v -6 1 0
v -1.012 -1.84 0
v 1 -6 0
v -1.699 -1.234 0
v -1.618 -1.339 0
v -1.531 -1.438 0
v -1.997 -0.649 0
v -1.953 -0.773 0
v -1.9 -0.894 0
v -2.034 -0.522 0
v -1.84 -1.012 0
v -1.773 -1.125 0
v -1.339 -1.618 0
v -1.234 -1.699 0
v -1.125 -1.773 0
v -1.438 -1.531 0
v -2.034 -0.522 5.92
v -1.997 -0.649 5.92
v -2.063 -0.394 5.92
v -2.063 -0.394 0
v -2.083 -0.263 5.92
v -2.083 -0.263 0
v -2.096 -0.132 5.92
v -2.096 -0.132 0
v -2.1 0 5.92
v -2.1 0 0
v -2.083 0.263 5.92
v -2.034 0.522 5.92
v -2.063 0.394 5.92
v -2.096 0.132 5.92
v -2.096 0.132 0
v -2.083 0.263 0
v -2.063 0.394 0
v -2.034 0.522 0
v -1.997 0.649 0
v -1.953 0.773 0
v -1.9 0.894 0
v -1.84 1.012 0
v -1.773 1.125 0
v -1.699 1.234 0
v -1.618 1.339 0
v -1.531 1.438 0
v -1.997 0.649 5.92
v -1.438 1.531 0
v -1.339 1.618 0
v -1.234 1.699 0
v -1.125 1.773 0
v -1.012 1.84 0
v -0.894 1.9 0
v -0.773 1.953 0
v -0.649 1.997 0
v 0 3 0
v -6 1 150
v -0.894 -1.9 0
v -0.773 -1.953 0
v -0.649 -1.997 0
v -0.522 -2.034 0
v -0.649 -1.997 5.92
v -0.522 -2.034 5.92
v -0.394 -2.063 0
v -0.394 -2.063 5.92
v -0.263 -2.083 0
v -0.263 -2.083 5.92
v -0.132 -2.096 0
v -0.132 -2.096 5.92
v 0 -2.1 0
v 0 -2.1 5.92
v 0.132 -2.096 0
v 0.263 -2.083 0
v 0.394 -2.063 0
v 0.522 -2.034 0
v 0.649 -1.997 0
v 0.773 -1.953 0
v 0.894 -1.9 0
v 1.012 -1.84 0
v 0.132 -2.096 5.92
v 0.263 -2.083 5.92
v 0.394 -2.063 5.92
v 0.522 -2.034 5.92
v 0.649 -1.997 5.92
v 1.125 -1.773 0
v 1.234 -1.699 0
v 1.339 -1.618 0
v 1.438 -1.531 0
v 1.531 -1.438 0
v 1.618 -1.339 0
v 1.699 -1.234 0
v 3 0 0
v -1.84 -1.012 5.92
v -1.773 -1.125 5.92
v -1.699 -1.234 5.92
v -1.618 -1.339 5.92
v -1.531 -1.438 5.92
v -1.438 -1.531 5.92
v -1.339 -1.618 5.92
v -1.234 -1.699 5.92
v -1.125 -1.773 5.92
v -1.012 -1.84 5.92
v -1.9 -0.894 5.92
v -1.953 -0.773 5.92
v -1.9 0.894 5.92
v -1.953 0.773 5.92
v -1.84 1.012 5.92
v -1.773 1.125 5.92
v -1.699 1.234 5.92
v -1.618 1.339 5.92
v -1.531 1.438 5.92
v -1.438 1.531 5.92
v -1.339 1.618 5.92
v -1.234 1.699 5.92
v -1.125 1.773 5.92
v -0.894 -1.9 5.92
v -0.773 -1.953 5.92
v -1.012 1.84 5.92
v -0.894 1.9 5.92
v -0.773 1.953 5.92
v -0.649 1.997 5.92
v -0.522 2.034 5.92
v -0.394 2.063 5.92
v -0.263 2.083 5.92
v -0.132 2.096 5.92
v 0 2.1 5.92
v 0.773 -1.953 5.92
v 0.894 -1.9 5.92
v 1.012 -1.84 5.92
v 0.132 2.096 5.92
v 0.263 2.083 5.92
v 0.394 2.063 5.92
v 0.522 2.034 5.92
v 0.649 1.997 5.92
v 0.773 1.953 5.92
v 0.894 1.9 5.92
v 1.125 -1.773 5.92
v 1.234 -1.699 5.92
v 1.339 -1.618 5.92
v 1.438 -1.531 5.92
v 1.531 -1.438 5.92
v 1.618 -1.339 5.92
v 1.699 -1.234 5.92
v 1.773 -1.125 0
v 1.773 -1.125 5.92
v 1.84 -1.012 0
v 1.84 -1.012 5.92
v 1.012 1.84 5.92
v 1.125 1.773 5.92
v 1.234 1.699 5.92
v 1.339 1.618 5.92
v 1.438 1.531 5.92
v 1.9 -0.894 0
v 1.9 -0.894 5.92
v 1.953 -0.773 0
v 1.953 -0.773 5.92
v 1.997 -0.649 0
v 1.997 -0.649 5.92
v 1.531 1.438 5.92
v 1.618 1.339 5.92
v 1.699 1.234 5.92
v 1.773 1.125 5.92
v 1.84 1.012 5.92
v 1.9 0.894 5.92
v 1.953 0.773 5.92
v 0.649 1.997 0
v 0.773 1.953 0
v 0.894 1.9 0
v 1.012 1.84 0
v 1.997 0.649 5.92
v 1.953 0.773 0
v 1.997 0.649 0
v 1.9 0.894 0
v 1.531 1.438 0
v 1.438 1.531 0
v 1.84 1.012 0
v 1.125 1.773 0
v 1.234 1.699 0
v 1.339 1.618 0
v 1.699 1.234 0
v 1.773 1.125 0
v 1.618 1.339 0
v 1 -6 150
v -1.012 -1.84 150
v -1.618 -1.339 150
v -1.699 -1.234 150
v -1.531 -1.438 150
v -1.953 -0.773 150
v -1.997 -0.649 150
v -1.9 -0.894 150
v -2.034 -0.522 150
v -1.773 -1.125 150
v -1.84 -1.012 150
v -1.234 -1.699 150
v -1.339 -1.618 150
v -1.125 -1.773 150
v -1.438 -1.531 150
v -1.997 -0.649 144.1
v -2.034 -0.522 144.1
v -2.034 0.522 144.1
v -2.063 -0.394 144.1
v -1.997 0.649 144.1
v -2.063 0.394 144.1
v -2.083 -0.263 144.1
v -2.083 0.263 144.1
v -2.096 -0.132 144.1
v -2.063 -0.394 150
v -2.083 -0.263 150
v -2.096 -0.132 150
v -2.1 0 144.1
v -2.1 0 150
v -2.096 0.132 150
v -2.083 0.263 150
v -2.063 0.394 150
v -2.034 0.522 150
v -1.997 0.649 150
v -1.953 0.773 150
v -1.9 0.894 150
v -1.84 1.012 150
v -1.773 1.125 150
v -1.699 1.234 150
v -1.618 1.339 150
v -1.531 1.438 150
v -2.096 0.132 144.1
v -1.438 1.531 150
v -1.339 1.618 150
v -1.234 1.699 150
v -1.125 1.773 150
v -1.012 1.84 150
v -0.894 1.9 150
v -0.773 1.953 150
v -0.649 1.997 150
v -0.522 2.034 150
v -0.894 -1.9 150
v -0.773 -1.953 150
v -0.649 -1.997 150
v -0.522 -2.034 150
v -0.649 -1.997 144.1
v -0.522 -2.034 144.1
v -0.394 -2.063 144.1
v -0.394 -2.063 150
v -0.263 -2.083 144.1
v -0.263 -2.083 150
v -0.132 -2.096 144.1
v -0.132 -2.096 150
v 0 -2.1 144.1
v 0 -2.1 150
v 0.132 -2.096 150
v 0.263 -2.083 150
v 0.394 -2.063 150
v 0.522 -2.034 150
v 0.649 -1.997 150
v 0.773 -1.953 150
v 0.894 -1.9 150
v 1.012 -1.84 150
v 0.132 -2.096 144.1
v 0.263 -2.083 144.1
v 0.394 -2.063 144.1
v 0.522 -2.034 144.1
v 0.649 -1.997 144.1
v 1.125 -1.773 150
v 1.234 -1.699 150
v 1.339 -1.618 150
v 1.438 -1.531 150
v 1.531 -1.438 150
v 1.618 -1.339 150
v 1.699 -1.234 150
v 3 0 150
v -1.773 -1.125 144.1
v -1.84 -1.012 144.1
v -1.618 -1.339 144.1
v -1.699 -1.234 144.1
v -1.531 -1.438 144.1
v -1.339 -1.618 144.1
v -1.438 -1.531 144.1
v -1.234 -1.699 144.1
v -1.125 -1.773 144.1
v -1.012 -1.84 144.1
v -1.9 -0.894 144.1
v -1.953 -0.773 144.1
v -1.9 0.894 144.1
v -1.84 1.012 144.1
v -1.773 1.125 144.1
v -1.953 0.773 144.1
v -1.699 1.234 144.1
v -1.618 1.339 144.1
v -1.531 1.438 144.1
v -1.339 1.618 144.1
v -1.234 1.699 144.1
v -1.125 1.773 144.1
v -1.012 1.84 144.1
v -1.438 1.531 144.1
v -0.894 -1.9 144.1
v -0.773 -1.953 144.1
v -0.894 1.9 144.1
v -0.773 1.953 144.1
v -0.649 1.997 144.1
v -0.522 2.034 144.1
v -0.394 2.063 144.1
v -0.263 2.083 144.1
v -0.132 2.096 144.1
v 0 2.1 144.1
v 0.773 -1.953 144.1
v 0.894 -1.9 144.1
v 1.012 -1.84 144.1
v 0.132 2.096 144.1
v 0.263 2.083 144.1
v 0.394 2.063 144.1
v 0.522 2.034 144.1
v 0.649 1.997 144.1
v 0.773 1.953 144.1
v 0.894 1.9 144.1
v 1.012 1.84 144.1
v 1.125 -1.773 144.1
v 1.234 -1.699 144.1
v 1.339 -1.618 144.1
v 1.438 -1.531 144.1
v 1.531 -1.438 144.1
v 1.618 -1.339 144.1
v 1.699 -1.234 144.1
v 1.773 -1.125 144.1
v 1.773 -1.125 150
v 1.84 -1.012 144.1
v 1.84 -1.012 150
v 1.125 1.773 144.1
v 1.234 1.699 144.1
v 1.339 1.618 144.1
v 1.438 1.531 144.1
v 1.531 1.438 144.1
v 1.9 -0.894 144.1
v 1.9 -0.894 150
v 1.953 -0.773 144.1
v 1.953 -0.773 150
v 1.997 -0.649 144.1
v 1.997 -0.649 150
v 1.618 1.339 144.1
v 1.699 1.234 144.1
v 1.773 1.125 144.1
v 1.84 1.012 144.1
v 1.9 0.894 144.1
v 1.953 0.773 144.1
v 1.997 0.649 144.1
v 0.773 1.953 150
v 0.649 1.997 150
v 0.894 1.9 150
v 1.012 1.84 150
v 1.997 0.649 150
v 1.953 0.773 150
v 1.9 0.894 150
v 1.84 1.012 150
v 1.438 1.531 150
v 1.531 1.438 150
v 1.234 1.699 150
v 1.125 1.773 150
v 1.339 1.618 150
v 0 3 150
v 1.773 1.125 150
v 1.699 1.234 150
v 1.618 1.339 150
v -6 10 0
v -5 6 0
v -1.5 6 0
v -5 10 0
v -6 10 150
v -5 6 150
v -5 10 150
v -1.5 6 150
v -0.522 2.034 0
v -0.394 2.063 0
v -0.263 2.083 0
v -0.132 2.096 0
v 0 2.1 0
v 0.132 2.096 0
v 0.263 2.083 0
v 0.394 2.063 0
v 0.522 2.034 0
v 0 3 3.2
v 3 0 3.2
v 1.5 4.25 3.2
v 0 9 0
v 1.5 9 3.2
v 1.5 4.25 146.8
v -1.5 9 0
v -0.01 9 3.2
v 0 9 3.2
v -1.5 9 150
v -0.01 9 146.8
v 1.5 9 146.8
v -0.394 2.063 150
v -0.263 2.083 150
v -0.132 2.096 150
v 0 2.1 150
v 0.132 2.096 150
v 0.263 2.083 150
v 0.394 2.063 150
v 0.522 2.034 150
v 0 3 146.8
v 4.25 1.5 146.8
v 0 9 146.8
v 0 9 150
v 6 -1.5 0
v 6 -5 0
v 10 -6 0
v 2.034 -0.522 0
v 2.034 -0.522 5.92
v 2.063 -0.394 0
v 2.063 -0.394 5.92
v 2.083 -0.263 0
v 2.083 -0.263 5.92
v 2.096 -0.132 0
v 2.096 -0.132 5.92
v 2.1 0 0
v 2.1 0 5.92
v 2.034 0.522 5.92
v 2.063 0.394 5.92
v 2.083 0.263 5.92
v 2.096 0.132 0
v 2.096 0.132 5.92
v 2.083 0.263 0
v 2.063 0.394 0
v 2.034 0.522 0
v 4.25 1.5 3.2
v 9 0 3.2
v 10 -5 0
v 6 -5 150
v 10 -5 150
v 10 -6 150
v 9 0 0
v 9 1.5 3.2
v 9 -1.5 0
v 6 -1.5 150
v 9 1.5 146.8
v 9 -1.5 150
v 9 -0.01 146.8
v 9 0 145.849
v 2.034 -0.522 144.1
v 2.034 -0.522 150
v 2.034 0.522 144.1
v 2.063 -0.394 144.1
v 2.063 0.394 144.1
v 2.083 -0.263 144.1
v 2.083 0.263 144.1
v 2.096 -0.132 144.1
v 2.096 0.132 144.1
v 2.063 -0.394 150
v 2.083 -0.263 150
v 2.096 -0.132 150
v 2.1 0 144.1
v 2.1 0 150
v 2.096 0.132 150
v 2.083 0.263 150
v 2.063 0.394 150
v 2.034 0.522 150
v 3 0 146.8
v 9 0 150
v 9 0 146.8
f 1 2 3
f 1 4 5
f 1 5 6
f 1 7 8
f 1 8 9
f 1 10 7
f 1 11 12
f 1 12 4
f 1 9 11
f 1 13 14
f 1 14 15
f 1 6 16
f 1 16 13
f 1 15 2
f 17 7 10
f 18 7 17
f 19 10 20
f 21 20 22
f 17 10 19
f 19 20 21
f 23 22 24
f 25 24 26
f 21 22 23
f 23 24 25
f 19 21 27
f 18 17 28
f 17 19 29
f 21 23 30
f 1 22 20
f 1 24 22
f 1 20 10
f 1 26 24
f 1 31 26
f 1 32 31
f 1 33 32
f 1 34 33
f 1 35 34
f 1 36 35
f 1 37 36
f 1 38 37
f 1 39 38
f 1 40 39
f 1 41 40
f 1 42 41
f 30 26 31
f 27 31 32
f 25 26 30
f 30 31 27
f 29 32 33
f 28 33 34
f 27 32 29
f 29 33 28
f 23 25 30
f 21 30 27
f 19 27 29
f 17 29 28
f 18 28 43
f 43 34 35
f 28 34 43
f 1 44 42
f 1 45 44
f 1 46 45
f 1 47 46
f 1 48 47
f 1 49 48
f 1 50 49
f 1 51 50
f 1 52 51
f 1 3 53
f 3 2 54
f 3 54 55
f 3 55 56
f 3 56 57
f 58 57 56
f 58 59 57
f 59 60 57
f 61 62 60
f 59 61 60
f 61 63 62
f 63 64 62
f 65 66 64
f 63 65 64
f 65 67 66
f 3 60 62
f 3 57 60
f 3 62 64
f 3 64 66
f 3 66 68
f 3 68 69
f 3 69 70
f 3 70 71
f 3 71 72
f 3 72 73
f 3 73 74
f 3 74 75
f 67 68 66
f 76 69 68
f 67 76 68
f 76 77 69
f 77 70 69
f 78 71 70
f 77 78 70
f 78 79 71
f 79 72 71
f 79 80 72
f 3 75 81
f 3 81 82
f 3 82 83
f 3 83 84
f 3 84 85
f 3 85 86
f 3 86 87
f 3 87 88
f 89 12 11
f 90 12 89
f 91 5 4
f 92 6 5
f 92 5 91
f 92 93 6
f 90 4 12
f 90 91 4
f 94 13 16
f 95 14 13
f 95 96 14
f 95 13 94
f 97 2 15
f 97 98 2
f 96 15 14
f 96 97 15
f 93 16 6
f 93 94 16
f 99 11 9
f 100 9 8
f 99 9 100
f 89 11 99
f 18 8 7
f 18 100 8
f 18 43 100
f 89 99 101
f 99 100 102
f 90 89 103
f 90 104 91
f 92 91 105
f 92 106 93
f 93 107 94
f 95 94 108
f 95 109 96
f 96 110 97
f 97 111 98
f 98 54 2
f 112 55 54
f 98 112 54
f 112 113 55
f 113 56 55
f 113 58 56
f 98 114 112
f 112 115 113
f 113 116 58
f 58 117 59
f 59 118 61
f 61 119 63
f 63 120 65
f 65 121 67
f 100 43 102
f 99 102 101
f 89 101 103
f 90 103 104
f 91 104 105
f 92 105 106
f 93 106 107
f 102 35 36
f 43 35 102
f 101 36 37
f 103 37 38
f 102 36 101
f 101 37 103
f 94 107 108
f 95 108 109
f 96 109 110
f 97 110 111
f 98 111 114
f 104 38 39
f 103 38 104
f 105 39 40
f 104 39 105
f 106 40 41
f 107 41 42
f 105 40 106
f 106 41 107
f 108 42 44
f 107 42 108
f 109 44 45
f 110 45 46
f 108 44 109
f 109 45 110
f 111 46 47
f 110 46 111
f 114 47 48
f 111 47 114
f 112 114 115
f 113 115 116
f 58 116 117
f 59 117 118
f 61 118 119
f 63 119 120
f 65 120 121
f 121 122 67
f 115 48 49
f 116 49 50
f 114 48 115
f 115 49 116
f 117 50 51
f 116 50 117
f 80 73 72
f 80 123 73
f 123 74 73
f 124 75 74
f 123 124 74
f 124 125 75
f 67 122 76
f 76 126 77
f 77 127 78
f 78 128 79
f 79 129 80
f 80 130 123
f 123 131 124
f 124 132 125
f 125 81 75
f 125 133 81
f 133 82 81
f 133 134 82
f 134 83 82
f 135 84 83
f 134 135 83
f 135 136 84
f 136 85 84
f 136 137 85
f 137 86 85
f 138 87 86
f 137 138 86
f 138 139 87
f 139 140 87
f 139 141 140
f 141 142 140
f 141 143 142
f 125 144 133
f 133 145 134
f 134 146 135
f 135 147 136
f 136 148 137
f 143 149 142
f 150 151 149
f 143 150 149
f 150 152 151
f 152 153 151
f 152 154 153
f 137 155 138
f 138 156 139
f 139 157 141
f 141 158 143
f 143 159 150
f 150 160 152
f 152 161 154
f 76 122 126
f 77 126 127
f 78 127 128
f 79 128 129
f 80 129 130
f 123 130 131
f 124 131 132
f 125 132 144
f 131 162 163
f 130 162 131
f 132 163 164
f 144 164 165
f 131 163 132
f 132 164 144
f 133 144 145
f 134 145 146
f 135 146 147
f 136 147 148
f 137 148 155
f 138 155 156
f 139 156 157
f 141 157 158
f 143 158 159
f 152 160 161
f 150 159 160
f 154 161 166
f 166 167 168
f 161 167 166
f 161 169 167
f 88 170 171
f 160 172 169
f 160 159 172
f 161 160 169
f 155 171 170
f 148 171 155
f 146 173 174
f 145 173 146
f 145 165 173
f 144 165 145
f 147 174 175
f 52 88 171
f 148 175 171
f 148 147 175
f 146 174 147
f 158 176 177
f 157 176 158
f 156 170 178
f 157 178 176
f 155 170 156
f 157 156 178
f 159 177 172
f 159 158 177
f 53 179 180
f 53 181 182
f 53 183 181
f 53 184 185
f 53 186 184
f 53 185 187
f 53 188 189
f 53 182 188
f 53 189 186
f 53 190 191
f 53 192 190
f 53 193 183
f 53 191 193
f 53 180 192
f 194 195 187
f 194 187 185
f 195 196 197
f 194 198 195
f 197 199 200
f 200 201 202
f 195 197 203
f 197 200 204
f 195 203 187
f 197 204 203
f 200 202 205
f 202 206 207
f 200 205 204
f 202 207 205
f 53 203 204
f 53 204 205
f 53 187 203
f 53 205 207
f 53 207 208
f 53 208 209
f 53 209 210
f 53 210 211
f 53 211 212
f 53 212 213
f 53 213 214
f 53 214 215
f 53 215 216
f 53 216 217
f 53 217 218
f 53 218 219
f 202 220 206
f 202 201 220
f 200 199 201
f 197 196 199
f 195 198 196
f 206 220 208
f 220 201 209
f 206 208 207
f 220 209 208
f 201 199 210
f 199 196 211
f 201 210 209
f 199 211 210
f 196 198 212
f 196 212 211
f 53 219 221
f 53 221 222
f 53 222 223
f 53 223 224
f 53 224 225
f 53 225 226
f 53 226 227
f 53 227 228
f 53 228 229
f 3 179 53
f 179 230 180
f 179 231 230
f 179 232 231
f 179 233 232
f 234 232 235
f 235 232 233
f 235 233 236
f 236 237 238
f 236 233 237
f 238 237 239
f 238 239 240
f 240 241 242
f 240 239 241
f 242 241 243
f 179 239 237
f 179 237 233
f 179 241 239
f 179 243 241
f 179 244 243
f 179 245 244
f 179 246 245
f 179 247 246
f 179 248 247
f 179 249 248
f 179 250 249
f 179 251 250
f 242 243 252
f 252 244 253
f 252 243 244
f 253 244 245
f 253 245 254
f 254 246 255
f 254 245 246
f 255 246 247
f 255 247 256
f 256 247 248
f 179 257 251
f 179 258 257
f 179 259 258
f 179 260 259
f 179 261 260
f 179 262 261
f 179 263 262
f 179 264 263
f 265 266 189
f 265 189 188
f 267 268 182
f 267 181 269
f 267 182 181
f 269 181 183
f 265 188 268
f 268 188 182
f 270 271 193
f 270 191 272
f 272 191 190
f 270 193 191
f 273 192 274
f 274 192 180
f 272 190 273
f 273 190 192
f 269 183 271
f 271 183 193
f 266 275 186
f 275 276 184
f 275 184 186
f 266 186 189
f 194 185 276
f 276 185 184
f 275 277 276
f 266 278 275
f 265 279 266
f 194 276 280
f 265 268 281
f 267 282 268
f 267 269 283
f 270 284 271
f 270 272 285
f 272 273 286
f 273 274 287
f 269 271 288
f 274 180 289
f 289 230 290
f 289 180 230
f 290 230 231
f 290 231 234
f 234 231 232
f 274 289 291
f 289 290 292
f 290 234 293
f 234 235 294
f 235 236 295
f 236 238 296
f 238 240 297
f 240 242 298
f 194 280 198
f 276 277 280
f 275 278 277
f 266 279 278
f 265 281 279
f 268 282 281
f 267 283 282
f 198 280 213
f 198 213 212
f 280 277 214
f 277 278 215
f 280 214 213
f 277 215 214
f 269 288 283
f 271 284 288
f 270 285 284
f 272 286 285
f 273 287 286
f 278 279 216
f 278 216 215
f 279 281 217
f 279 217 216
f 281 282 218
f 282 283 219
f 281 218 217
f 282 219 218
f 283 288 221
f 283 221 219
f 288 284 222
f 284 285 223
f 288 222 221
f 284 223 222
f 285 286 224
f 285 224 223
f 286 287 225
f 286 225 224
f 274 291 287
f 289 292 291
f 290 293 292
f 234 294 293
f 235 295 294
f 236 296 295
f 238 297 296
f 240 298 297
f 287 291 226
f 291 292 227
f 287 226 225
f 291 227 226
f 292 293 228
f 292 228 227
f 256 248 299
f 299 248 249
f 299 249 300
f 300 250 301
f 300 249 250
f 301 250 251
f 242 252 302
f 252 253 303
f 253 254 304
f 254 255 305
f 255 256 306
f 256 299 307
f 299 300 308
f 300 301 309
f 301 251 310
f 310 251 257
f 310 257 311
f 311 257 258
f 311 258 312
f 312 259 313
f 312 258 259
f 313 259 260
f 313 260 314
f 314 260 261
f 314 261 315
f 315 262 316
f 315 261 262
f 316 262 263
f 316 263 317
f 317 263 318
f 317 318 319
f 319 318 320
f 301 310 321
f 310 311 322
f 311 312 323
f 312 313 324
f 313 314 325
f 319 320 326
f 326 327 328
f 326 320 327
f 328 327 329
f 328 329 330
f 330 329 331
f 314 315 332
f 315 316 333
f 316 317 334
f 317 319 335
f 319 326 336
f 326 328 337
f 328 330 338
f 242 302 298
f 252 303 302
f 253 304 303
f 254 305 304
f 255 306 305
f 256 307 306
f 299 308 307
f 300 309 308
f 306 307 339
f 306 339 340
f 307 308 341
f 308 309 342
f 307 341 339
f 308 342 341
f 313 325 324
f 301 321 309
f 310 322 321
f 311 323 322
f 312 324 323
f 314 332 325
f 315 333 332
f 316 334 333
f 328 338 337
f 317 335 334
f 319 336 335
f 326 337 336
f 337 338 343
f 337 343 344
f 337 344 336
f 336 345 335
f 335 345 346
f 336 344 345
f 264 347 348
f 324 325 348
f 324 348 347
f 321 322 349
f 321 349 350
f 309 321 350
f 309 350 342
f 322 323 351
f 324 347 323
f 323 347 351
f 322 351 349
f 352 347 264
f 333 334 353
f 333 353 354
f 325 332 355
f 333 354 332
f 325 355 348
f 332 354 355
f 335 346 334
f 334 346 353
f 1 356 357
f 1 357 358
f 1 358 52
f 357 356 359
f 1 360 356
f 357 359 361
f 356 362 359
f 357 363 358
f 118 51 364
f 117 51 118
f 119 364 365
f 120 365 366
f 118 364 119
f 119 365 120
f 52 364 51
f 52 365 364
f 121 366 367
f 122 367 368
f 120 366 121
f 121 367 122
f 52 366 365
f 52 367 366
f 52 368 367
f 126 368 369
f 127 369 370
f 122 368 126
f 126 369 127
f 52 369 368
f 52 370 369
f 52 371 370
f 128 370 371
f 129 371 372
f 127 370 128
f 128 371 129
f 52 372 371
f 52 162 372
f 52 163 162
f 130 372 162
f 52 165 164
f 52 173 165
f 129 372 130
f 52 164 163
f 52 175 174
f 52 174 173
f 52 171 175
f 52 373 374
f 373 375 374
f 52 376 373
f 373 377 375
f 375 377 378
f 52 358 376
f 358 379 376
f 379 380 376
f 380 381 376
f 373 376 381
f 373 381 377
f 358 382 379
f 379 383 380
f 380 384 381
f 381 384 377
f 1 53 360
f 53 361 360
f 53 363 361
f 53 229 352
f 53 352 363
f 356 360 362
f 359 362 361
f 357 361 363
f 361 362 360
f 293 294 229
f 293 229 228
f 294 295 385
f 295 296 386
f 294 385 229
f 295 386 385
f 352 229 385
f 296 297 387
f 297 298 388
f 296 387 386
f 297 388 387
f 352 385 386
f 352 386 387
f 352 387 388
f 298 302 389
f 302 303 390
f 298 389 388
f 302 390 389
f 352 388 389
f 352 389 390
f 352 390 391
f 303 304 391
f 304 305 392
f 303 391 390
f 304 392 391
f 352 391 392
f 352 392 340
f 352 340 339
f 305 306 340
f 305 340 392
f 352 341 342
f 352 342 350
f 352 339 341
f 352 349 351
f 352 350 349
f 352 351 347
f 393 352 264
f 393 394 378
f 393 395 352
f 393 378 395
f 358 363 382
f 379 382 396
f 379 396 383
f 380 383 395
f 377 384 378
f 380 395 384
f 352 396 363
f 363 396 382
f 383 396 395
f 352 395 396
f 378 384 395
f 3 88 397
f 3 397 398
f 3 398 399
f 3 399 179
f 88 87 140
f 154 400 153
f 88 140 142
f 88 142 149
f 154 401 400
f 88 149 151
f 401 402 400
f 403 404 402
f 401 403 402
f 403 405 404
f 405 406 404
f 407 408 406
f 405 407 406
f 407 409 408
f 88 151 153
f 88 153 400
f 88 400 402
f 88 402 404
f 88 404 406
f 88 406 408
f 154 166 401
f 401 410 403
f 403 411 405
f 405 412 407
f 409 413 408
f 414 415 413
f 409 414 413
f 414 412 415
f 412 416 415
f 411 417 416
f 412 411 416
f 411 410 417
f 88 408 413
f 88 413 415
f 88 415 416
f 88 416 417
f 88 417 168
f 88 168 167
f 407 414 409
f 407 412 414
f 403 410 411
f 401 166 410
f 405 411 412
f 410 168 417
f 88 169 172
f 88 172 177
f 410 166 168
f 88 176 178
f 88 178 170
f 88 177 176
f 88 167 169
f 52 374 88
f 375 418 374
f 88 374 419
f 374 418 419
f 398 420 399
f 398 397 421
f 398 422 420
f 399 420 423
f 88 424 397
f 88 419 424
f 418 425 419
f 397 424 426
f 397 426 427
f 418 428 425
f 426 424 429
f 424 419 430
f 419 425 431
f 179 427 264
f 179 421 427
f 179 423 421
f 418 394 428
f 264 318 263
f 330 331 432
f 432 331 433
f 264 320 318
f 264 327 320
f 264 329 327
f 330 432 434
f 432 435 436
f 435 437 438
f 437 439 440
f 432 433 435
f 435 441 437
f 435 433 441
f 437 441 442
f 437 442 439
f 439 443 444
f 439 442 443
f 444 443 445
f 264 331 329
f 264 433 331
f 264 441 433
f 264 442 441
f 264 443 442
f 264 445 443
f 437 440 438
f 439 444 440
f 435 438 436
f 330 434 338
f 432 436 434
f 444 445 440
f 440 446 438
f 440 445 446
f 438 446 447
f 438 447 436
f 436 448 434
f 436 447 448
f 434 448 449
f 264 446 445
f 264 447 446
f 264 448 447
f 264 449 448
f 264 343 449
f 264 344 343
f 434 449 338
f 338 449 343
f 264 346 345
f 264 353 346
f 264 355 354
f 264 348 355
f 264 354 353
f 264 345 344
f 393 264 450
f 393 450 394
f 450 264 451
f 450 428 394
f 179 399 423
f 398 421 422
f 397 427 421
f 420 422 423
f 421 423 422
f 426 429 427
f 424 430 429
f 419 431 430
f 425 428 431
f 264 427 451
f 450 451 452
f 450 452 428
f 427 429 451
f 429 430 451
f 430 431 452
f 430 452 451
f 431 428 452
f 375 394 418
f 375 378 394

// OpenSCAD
// file: Kante.scad
$fn = 100;
tiny = 0.01;


/*

module stl_model() {
  import("Kante_5cm.stl");
}

color("blue") translate([30,0,0]) stl_model();
*/


/*************************************************
 * hoehe in mm
 ************************************************/

module Kante(hoehe) {
  x1 = 10;   // #1. unten rechts
  y1 = -6;   // #1.
  y2 = -5;   // #2
  x2 = +6;   // #3
  y3 = -1.5; // #4
  x3 = +9;   // #5
  y4 = +0;   // #6
  x4 = +3;   // #7
  y5 = +1;   // #8
  //--
  y6 = +1.5;
  x5 = 4.25;
  y7 = 3;
  
  dh = 3   + 0.2; // Toleranz
  h1 = hoehe - 2*dh;  

  h2 = 5.7 + 0.2; // Toleranz Innenloch
  d2 = 4.0 + 0.2; // Toleranz Innenloch

  color("red")
  difference() {
     union() {
        //color("red")
        linear_extrude(height=hoehe)
        polygon(points=[
          [x1,y1], // 10,-6
          [x1,y2], // 10,-5
          [x2,y2], //  6,-5
          [x2,y3], //  6,-1.5 
          [x3,y3], //  9,-1.5
          [x3,y4], //  9,0
          [x4,y4], //  3,0
          // copies from here.
          [y4,x4], //  0,3
          [y4,x3], //  0,9
          [y3,x3], // -1.5,9
          [y3,x2], // -1.5,6
          [y2,x2], //  -5,6
          [y2,x1], //  -5,10
          [y1,x1], //  -6,10
          [y1,y5], //  -6,1
          [y5,y1], //  -6,1
          [x1,y1]  // 10,-6
          ]); // polygon
        translate([0,0,dh])
        linear_extrude(height=h1)
        polygon(points=[
          [x3,y4 - tiny], // 9,-0
          [x3,y6], // 9,1.5
          [x5,y6], // 4,1.5
          [y6,x5], // 1.5,4
          [y6,x3], // 1.5,9
          [y4 - tiny,x3], // -0,9
          [y4 - tiny,y7], // -0,3
          [y7,y4 - tiny], // 3,-0
          [x3,y4 - tiny], // 9,-0
          ]); // polygon
        } // union

     translate([0,0,-tiny])    cylinder(h=h2+3*tiny, d=d2); // Loch unten
     translate([0,0,hoehe-h2]) cylinder(h=h2+2*tiny, d=d2); // Loch oben
  } // difference
}
// main file
use <Kante.scad>
$fn = 100;

Kante(150); // hoehe in mm
